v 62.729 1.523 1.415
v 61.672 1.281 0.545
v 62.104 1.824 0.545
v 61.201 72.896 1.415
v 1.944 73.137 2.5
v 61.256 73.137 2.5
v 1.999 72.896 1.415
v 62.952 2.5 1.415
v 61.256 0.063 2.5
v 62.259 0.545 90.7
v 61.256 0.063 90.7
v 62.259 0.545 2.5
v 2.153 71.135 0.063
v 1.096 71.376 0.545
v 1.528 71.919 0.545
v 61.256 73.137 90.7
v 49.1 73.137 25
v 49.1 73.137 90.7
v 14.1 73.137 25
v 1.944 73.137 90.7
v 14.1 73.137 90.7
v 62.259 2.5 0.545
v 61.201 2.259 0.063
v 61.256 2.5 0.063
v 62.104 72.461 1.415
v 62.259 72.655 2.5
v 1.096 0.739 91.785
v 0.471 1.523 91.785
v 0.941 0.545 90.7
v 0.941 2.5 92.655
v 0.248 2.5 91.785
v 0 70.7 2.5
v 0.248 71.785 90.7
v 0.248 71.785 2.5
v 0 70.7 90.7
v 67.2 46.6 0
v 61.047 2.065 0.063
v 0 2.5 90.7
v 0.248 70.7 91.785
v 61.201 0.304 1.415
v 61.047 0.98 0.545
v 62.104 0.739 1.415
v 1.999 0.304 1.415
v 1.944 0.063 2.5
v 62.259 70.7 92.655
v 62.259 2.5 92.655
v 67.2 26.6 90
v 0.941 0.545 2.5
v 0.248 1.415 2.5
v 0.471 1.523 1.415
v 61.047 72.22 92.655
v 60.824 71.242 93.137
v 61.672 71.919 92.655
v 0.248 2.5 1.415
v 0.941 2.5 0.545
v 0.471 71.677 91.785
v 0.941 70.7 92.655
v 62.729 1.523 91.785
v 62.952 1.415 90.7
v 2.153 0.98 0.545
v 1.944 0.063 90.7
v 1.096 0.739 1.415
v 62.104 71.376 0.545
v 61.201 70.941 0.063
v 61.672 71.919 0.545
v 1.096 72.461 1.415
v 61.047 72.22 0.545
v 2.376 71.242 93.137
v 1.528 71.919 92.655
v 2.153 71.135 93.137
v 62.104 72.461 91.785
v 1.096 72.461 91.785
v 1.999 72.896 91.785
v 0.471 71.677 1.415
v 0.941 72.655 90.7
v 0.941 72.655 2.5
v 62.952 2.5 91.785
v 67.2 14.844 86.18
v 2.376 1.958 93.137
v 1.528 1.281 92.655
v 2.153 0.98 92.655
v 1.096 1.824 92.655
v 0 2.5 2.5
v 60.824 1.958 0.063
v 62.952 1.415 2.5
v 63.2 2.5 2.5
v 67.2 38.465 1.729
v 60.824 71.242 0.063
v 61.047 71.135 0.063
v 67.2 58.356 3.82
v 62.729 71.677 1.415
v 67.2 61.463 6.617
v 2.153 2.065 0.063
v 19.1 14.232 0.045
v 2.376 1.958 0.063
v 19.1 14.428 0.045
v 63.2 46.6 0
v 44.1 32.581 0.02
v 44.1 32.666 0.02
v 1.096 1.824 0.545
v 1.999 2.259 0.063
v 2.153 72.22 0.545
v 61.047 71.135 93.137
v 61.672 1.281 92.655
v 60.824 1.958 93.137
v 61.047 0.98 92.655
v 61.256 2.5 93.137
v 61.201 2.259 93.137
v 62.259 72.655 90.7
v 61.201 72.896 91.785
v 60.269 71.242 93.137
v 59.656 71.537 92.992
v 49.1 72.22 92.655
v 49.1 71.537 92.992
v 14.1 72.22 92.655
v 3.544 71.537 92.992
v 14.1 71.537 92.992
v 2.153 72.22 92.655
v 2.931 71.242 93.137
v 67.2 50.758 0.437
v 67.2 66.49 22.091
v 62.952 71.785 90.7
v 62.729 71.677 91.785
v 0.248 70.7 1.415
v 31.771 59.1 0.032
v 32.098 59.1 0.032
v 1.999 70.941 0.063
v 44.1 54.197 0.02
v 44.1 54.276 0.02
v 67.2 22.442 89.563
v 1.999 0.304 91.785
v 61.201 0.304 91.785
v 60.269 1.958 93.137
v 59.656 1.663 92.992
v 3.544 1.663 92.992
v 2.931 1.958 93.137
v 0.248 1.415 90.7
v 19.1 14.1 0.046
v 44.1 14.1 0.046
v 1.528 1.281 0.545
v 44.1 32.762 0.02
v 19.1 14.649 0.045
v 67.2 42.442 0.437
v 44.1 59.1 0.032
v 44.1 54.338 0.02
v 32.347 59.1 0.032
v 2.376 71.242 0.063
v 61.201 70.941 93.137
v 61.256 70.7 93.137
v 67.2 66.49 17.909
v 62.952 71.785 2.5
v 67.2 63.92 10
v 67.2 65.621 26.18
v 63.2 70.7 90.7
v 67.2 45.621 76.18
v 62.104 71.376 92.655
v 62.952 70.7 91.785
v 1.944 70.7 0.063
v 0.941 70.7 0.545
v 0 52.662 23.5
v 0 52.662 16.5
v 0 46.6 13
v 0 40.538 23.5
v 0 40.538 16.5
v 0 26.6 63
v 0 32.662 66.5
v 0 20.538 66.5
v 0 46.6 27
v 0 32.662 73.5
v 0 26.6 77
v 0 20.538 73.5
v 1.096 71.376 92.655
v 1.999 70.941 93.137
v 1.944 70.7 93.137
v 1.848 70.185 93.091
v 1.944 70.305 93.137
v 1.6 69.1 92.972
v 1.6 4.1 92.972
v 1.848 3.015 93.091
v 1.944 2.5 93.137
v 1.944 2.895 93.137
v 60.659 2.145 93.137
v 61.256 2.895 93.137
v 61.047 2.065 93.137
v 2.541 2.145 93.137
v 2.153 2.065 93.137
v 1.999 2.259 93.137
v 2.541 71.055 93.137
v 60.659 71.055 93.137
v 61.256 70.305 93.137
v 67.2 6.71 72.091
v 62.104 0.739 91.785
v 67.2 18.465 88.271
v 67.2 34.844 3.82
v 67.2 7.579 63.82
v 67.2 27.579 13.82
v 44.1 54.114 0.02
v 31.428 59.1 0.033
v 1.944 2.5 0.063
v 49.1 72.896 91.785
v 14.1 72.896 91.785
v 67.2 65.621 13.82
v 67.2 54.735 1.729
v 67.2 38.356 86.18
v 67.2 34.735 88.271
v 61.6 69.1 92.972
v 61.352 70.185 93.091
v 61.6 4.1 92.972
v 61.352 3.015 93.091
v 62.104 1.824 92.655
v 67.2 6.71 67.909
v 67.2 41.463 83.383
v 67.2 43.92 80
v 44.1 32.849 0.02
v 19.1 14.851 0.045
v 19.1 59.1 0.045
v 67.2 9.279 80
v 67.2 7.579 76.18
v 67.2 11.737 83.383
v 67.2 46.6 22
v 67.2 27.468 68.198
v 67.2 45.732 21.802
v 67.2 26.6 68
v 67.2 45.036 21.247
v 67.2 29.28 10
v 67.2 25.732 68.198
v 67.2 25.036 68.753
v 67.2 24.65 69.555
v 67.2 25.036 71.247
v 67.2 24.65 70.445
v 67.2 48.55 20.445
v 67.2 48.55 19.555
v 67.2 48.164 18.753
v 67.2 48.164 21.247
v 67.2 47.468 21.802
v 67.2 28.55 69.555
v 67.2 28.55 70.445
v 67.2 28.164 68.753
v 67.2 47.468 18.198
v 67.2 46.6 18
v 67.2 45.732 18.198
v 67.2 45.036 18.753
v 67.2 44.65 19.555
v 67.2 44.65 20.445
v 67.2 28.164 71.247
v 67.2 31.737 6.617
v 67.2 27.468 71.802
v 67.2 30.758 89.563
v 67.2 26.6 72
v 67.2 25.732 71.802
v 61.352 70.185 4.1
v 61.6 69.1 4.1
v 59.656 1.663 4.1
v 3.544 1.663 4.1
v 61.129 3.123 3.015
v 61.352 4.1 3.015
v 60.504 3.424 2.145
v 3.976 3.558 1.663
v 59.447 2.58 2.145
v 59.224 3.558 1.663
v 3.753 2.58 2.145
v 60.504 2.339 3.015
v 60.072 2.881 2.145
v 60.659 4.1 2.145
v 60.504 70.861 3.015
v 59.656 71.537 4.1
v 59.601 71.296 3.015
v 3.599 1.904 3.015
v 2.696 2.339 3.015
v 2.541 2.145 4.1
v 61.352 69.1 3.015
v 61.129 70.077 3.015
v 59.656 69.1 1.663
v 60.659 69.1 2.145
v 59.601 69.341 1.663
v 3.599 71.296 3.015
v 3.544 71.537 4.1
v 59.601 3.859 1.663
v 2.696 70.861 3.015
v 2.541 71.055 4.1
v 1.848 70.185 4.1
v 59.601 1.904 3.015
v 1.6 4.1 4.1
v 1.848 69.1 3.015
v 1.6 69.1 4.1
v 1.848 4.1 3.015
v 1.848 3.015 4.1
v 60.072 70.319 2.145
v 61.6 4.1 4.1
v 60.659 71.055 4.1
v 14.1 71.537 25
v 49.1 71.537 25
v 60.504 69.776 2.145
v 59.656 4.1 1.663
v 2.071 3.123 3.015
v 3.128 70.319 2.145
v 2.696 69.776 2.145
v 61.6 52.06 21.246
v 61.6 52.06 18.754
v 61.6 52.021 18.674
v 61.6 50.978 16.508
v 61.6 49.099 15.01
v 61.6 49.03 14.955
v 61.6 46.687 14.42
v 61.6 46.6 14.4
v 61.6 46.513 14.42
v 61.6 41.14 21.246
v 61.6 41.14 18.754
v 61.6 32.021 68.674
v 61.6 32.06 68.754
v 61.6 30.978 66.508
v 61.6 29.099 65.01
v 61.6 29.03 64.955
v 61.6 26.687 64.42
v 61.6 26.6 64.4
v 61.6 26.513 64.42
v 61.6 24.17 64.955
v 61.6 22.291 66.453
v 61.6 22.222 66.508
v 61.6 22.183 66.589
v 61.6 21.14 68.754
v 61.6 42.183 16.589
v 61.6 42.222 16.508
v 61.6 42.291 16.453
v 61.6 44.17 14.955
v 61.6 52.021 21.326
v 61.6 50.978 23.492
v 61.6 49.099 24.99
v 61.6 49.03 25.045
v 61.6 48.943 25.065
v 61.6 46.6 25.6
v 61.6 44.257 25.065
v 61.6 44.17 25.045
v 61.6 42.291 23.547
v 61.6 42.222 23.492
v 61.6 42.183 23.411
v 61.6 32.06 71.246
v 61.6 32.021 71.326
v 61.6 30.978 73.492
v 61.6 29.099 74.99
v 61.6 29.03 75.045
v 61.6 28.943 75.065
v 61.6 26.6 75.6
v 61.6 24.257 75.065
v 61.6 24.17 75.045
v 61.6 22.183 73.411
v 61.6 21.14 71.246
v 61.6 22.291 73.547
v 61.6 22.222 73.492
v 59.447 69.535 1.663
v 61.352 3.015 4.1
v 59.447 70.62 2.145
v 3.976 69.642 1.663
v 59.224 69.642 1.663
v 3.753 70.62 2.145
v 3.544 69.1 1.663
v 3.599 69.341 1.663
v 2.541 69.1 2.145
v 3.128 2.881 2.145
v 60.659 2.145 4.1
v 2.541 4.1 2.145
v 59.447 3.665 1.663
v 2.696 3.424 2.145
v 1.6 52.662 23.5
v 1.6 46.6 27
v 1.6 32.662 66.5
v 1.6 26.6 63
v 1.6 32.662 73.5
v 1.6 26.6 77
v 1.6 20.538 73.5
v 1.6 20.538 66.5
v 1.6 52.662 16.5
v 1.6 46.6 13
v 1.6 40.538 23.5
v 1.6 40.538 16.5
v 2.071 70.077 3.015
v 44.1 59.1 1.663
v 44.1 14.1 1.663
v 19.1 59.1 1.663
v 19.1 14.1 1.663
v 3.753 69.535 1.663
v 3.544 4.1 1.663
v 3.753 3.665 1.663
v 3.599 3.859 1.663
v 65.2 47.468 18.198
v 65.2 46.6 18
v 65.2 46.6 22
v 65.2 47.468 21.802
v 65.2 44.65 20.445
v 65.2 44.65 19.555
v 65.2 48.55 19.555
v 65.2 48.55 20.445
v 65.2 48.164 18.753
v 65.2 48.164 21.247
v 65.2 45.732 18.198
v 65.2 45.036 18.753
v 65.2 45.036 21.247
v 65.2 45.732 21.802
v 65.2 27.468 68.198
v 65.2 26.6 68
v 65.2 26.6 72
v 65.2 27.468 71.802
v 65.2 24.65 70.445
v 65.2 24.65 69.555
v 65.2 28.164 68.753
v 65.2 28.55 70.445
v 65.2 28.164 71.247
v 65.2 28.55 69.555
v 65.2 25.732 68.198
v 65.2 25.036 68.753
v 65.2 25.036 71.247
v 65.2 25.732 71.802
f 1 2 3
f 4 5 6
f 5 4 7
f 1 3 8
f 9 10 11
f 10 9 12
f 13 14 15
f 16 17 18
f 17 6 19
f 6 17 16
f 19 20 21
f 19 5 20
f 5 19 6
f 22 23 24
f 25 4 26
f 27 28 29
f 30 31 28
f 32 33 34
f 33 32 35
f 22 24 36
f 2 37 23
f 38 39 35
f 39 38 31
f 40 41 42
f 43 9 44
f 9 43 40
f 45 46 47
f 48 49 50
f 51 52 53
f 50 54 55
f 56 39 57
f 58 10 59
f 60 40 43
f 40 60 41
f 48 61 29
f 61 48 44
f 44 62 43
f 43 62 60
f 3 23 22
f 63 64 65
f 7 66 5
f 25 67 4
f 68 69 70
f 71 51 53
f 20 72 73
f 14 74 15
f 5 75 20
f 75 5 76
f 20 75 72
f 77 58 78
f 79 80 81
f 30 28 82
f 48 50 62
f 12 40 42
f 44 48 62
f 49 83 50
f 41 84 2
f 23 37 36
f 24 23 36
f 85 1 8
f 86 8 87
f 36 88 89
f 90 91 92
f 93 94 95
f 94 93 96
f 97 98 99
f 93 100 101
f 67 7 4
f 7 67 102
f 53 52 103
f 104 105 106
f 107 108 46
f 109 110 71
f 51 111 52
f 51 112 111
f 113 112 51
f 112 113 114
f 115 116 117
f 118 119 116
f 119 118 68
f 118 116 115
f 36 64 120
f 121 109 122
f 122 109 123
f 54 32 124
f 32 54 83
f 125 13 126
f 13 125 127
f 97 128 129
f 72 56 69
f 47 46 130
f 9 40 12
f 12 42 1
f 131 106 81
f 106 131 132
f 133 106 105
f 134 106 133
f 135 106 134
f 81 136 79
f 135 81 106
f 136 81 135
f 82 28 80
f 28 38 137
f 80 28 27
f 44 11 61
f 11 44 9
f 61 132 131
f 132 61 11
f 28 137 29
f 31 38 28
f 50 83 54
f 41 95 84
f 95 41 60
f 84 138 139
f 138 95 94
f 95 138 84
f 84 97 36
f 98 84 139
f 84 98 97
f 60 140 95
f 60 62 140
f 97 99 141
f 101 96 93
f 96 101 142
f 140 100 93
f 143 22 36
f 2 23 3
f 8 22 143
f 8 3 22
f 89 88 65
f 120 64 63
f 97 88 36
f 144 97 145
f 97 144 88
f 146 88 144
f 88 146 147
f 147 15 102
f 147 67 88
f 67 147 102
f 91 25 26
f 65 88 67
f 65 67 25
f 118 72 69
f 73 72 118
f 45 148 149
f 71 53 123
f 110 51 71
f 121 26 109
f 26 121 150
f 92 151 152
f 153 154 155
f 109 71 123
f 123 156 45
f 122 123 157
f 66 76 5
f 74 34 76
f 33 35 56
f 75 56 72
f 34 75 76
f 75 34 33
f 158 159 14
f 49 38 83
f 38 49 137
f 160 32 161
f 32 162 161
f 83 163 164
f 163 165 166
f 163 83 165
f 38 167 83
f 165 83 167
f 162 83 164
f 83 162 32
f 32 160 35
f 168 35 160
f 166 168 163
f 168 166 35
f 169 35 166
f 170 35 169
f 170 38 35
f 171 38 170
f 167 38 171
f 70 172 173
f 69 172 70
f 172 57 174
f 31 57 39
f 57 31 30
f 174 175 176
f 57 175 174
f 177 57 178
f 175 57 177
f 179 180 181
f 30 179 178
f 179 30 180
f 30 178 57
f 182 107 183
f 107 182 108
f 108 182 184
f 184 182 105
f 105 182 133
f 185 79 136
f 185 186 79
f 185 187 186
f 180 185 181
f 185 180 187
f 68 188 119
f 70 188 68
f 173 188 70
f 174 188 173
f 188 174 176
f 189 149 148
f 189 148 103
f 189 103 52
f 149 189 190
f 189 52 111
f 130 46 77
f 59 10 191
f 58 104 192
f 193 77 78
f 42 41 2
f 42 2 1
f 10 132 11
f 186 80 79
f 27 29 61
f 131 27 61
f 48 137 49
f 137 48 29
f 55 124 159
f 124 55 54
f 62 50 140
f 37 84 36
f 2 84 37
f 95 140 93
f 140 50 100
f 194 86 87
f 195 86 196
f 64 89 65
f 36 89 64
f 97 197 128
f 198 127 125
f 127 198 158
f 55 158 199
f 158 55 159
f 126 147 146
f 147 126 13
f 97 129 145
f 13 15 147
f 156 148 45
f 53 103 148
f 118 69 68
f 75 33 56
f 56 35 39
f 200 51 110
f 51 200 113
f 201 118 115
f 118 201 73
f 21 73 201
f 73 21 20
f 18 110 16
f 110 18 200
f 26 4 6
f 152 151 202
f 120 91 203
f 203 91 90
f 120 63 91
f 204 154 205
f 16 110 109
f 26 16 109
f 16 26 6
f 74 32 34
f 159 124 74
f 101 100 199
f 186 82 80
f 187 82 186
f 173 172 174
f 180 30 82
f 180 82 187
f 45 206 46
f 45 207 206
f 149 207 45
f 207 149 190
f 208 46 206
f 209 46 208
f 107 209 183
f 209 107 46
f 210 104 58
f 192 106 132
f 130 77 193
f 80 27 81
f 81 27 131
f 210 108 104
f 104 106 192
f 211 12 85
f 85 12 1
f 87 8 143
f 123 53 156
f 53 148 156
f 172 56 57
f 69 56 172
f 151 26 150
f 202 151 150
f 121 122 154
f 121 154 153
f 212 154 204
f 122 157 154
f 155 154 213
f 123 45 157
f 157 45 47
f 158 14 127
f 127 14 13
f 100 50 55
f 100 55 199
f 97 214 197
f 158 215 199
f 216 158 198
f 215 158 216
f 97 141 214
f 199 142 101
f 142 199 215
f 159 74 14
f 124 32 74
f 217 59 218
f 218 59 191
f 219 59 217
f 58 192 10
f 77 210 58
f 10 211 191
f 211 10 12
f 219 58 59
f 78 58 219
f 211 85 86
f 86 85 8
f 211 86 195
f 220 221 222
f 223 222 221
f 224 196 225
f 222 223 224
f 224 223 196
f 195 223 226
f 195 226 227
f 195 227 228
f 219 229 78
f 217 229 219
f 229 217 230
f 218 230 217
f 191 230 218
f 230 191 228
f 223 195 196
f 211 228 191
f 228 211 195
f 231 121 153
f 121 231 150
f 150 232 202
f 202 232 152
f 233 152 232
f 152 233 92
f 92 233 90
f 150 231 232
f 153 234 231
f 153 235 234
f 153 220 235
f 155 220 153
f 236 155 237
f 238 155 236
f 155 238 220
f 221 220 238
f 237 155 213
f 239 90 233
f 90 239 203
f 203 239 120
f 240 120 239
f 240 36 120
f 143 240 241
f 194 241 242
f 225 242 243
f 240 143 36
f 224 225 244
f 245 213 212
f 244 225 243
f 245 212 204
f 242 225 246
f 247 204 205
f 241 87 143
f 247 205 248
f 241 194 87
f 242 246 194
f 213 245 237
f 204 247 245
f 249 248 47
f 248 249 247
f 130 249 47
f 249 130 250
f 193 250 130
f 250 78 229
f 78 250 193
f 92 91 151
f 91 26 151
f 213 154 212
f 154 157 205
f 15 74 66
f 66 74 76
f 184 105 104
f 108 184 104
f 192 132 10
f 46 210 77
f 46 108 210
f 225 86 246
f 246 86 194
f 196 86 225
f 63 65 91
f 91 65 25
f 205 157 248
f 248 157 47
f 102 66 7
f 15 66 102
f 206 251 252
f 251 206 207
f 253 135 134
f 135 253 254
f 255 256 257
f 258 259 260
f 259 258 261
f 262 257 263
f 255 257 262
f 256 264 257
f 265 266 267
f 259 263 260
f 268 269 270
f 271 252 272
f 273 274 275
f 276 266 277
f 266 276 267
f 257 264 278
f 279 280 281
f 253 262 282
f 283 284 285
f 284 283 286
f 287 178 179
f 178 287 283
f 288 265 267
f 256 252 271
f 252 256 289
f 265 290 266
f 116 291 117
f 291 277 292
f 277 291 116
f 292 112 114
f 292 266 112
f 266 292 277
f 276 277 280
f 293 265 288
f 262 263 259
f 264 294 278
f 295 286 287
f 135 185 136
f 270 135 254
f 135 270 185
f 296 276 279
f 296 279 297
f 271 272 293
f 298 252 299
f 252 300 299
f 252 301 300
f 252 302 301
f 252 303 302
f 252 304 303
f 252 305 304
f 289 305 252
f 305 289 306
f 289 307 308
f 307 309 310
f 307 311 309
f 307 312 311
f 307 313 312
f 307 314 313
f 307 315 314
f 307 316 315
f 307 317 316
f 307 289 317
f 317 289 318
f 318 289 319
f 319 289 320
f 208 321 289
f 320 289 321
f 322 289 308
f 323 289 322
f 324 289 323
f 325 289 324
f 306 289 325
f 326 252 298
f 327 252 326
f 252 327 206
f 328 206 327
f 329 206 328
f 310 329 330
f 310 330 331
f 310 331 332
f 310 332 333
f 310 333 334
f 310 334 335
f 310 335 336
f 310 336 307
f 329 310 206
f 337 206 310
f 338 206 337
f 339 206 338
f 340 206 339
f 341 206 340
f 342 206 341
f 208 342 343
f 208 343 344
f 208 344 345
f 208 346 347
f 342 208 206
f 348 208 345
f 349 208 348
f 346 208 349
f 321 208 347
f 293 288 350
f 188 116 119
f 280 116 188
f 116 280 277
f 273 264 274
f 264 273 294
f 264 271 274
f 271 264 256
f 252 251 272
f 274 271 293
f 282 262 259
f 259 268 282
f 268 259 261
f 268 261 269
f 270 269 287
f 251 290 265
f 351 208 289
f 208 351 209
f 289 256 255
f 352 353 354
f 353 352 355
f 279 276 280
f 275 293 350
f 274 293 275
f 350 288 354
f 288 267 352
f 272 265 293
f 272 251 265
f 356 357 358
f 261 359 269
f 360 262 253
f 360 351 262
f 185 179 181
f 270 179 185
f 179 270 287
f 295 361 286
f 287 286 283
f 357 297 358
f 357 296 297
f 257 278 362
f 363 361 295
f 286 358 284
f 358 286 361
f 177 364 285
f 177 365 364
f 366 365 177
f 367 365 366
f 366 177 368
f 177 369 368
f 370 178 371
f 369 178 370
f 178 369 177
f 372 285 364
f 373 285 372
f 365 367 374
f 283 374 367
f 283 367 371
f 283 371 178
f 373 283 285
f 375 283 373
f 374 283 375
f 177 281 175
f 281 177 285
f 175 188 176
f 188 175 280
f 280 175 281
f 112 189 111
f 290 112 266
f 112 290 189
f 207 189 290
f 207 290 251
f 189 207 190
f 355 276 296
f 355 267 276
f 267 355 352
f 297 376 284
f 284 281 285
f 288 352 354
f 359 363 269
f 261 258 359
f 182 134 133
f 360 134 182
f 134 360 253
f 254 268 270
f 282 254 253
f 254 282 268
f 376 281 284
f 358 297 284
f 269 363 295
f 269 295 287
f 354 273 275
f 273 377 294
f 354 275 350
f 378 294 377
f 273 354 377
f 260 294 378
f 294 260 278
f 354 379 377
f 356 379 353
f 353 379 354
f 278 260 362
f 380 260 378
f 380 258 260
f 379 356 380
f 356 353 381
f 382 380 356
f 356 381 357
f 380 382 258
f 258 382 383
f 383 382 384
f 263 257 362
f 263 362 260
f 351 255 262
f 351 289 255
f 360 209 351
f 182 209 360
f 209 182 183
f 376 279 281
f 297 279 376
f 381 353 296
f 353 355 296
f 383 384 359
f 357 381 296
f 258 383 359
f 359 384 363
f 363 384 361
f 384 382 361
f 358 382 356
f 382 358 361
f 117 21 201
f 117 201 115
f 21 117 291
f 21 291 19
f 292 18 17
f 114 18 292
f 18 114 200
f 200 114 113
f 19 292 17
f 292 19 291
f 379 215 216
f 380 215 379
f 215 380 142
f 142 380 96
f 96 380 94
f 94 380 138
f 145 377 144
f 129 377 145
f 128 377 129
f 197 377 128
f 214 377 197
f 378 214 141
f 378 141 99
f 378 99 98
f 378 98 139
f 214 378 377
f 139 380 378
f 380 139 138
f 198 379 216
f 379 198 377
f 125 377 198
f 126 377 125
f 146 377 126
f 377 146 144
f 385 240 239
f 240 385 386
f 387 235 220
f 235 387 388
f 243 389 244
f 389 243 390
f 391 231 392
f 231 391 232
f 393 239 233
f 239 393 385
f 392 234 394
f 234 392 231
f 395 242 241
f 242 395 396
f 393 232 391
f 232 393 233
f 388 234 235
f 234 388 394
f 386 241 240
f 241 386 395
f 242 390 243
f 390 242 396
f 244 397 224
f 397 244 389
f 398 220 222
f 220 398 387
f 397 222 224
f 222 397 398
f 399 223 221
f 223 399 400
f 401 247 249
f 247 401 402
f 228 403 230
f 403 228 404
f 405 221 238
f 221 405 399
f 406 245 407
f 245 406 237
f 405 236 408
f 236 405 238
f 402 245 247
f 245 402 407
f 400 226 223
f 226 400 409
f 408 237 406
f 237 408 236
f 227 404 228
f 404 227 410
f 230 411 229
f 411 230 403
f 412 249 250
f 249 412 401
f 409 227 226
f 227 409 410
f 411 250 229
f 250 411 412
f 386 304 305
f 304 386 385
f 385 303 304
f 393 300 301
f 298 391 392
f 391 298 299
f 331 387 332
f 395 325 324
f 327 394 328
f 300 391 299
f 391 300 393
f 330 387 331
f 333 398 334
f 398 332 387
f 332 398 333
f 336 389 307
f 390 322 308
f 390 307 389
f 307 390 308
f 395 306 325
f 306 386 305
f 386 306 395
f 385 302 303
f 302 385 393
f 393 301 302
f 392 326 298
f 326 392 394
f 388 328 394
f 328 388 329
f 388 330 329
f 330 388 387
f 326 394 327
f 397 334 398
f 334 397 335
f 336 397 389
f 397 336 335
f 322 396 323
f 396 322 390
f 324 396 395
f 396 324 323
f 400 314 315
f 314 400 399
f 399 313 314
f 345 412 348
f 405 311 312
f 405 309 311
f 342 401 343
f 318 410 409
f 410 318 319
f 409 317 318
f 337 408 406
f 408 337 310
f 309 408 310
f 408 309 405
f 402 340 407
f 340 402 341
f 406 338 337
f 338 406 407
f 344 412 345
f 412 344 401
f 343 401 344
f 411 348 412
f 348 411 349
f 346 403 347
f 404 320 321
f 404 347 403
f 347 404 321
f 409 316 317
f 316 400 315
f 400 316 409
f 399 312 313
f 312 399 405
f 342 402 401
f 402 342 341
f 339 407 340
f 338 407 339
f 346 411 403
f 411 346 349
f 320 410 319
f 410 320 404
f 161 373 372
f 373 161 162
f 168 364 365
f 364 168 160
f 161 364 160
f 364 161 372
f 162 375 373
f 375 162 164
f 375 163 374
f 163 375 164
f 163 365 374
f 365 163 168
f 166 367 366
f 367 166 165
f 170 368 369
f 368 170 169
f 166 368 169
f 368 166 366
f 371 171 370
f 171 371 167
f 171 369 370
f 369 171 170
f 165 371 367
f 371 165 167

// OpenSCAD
sphere_fn=14;

wall=0.4*4;
inner_width=60;
inner_length=70;
inner_height=90;
outer_width=2*wall+inner_width;
outer_length=2*wall+inner_length;
outer_height=2*wall+inner_height;



difference()
{
    union()
    hull()
    {
        round_cube(outer_width,2*wall+inner_length,2*wall+inner_height);
        translate([0,10,20])
        screew_mounting();
        translate([0,-10,70])
        screew_mounting();
    }
    translate([wall,wall,wall])
    round_cube(inner_width,inner_length,inner_height+10);

    translate([outer_width/2-35/2,outer_length-25/4,25])
    cube([35,10,80]);

    translate([outer_width/2-25/2,outer_length/2-45/2,0])
    cube([25,45,2*wall]);
    
    translate([0,10,20])
    screew_mounting_hole(4);
    translate([0,-10,70])
    screew_mounting_hole(4);
    
    translate([8,10,20])
    #screew_mounting_head_hole(4);
    translate([8,-10,70])
    #screew_mounting_head_hole(4);

    translate([0,10,20])
    #screew_mounting_screewing_hole(14);
    translate([0,-10,70])
    #screew_mounting_screewing_hole(14);
}


module screew_mounting()
{
    translate([outer_width,outer_length/2,0])
    rotate([0,90,0,])
    cylinder(d=40,h=4);
}

module screew_mounting_hole(d)
{
    translate([outer_width-20/2,outer_length/2,0])
    rotate([0,90,0,])
    cylinder(d=d,h=20,$fn=sphere_fn);
}

module screew_mounting_head_hole(d)
{
    translate([outer_width-20/2,outer_length/2,0])
    rotate([0,90,0,])
    cylinder(d1=d*3,d2=d,h=4,$fn=sphere_fn);
}

module screew_mounting_screewing_hole(d)
{
    translate([-20/2,outer_length/2,0])
    rotate([0,90,0,])
    cylinder(d=d,h=20,$fn=6);
}

module round_cube(width,length,height)
{
    sphere_d=5;
    shift=sphere_d/2;

    translate([shift,shift,shift])
    hull()
    {
        translate([0,0,0])
        sphere(d=5,$fn=sphere_fn);
        translate([width-sphere_d,0,0])
        sphere(d=5,$fn=sphere_fn);
        translate([width-sphere_d,length-sphere_d,0])
        sphere(d=5,$fn=sphere_fn);
        translate([0,length-sphere_d,0])
        sphere(d=5,$fn=sphere_fn);

        translate([0,0,height-sphere_d])
        sphere(d=5,$fn=sphere_fn);
        translate([width-sphere_d,0,height-sphere_d])
        sphere(d=5,$fn=sphere_fn);
        translate([width-sphere_d,length-sphere_d,height-sphere_d])
        sphere(d=5,$fn=sphere_fn);
        translate([0,length-sphere_d,height-sphere_d])
        sphere(d=5,$fn=sphere_fn);
    }
}
